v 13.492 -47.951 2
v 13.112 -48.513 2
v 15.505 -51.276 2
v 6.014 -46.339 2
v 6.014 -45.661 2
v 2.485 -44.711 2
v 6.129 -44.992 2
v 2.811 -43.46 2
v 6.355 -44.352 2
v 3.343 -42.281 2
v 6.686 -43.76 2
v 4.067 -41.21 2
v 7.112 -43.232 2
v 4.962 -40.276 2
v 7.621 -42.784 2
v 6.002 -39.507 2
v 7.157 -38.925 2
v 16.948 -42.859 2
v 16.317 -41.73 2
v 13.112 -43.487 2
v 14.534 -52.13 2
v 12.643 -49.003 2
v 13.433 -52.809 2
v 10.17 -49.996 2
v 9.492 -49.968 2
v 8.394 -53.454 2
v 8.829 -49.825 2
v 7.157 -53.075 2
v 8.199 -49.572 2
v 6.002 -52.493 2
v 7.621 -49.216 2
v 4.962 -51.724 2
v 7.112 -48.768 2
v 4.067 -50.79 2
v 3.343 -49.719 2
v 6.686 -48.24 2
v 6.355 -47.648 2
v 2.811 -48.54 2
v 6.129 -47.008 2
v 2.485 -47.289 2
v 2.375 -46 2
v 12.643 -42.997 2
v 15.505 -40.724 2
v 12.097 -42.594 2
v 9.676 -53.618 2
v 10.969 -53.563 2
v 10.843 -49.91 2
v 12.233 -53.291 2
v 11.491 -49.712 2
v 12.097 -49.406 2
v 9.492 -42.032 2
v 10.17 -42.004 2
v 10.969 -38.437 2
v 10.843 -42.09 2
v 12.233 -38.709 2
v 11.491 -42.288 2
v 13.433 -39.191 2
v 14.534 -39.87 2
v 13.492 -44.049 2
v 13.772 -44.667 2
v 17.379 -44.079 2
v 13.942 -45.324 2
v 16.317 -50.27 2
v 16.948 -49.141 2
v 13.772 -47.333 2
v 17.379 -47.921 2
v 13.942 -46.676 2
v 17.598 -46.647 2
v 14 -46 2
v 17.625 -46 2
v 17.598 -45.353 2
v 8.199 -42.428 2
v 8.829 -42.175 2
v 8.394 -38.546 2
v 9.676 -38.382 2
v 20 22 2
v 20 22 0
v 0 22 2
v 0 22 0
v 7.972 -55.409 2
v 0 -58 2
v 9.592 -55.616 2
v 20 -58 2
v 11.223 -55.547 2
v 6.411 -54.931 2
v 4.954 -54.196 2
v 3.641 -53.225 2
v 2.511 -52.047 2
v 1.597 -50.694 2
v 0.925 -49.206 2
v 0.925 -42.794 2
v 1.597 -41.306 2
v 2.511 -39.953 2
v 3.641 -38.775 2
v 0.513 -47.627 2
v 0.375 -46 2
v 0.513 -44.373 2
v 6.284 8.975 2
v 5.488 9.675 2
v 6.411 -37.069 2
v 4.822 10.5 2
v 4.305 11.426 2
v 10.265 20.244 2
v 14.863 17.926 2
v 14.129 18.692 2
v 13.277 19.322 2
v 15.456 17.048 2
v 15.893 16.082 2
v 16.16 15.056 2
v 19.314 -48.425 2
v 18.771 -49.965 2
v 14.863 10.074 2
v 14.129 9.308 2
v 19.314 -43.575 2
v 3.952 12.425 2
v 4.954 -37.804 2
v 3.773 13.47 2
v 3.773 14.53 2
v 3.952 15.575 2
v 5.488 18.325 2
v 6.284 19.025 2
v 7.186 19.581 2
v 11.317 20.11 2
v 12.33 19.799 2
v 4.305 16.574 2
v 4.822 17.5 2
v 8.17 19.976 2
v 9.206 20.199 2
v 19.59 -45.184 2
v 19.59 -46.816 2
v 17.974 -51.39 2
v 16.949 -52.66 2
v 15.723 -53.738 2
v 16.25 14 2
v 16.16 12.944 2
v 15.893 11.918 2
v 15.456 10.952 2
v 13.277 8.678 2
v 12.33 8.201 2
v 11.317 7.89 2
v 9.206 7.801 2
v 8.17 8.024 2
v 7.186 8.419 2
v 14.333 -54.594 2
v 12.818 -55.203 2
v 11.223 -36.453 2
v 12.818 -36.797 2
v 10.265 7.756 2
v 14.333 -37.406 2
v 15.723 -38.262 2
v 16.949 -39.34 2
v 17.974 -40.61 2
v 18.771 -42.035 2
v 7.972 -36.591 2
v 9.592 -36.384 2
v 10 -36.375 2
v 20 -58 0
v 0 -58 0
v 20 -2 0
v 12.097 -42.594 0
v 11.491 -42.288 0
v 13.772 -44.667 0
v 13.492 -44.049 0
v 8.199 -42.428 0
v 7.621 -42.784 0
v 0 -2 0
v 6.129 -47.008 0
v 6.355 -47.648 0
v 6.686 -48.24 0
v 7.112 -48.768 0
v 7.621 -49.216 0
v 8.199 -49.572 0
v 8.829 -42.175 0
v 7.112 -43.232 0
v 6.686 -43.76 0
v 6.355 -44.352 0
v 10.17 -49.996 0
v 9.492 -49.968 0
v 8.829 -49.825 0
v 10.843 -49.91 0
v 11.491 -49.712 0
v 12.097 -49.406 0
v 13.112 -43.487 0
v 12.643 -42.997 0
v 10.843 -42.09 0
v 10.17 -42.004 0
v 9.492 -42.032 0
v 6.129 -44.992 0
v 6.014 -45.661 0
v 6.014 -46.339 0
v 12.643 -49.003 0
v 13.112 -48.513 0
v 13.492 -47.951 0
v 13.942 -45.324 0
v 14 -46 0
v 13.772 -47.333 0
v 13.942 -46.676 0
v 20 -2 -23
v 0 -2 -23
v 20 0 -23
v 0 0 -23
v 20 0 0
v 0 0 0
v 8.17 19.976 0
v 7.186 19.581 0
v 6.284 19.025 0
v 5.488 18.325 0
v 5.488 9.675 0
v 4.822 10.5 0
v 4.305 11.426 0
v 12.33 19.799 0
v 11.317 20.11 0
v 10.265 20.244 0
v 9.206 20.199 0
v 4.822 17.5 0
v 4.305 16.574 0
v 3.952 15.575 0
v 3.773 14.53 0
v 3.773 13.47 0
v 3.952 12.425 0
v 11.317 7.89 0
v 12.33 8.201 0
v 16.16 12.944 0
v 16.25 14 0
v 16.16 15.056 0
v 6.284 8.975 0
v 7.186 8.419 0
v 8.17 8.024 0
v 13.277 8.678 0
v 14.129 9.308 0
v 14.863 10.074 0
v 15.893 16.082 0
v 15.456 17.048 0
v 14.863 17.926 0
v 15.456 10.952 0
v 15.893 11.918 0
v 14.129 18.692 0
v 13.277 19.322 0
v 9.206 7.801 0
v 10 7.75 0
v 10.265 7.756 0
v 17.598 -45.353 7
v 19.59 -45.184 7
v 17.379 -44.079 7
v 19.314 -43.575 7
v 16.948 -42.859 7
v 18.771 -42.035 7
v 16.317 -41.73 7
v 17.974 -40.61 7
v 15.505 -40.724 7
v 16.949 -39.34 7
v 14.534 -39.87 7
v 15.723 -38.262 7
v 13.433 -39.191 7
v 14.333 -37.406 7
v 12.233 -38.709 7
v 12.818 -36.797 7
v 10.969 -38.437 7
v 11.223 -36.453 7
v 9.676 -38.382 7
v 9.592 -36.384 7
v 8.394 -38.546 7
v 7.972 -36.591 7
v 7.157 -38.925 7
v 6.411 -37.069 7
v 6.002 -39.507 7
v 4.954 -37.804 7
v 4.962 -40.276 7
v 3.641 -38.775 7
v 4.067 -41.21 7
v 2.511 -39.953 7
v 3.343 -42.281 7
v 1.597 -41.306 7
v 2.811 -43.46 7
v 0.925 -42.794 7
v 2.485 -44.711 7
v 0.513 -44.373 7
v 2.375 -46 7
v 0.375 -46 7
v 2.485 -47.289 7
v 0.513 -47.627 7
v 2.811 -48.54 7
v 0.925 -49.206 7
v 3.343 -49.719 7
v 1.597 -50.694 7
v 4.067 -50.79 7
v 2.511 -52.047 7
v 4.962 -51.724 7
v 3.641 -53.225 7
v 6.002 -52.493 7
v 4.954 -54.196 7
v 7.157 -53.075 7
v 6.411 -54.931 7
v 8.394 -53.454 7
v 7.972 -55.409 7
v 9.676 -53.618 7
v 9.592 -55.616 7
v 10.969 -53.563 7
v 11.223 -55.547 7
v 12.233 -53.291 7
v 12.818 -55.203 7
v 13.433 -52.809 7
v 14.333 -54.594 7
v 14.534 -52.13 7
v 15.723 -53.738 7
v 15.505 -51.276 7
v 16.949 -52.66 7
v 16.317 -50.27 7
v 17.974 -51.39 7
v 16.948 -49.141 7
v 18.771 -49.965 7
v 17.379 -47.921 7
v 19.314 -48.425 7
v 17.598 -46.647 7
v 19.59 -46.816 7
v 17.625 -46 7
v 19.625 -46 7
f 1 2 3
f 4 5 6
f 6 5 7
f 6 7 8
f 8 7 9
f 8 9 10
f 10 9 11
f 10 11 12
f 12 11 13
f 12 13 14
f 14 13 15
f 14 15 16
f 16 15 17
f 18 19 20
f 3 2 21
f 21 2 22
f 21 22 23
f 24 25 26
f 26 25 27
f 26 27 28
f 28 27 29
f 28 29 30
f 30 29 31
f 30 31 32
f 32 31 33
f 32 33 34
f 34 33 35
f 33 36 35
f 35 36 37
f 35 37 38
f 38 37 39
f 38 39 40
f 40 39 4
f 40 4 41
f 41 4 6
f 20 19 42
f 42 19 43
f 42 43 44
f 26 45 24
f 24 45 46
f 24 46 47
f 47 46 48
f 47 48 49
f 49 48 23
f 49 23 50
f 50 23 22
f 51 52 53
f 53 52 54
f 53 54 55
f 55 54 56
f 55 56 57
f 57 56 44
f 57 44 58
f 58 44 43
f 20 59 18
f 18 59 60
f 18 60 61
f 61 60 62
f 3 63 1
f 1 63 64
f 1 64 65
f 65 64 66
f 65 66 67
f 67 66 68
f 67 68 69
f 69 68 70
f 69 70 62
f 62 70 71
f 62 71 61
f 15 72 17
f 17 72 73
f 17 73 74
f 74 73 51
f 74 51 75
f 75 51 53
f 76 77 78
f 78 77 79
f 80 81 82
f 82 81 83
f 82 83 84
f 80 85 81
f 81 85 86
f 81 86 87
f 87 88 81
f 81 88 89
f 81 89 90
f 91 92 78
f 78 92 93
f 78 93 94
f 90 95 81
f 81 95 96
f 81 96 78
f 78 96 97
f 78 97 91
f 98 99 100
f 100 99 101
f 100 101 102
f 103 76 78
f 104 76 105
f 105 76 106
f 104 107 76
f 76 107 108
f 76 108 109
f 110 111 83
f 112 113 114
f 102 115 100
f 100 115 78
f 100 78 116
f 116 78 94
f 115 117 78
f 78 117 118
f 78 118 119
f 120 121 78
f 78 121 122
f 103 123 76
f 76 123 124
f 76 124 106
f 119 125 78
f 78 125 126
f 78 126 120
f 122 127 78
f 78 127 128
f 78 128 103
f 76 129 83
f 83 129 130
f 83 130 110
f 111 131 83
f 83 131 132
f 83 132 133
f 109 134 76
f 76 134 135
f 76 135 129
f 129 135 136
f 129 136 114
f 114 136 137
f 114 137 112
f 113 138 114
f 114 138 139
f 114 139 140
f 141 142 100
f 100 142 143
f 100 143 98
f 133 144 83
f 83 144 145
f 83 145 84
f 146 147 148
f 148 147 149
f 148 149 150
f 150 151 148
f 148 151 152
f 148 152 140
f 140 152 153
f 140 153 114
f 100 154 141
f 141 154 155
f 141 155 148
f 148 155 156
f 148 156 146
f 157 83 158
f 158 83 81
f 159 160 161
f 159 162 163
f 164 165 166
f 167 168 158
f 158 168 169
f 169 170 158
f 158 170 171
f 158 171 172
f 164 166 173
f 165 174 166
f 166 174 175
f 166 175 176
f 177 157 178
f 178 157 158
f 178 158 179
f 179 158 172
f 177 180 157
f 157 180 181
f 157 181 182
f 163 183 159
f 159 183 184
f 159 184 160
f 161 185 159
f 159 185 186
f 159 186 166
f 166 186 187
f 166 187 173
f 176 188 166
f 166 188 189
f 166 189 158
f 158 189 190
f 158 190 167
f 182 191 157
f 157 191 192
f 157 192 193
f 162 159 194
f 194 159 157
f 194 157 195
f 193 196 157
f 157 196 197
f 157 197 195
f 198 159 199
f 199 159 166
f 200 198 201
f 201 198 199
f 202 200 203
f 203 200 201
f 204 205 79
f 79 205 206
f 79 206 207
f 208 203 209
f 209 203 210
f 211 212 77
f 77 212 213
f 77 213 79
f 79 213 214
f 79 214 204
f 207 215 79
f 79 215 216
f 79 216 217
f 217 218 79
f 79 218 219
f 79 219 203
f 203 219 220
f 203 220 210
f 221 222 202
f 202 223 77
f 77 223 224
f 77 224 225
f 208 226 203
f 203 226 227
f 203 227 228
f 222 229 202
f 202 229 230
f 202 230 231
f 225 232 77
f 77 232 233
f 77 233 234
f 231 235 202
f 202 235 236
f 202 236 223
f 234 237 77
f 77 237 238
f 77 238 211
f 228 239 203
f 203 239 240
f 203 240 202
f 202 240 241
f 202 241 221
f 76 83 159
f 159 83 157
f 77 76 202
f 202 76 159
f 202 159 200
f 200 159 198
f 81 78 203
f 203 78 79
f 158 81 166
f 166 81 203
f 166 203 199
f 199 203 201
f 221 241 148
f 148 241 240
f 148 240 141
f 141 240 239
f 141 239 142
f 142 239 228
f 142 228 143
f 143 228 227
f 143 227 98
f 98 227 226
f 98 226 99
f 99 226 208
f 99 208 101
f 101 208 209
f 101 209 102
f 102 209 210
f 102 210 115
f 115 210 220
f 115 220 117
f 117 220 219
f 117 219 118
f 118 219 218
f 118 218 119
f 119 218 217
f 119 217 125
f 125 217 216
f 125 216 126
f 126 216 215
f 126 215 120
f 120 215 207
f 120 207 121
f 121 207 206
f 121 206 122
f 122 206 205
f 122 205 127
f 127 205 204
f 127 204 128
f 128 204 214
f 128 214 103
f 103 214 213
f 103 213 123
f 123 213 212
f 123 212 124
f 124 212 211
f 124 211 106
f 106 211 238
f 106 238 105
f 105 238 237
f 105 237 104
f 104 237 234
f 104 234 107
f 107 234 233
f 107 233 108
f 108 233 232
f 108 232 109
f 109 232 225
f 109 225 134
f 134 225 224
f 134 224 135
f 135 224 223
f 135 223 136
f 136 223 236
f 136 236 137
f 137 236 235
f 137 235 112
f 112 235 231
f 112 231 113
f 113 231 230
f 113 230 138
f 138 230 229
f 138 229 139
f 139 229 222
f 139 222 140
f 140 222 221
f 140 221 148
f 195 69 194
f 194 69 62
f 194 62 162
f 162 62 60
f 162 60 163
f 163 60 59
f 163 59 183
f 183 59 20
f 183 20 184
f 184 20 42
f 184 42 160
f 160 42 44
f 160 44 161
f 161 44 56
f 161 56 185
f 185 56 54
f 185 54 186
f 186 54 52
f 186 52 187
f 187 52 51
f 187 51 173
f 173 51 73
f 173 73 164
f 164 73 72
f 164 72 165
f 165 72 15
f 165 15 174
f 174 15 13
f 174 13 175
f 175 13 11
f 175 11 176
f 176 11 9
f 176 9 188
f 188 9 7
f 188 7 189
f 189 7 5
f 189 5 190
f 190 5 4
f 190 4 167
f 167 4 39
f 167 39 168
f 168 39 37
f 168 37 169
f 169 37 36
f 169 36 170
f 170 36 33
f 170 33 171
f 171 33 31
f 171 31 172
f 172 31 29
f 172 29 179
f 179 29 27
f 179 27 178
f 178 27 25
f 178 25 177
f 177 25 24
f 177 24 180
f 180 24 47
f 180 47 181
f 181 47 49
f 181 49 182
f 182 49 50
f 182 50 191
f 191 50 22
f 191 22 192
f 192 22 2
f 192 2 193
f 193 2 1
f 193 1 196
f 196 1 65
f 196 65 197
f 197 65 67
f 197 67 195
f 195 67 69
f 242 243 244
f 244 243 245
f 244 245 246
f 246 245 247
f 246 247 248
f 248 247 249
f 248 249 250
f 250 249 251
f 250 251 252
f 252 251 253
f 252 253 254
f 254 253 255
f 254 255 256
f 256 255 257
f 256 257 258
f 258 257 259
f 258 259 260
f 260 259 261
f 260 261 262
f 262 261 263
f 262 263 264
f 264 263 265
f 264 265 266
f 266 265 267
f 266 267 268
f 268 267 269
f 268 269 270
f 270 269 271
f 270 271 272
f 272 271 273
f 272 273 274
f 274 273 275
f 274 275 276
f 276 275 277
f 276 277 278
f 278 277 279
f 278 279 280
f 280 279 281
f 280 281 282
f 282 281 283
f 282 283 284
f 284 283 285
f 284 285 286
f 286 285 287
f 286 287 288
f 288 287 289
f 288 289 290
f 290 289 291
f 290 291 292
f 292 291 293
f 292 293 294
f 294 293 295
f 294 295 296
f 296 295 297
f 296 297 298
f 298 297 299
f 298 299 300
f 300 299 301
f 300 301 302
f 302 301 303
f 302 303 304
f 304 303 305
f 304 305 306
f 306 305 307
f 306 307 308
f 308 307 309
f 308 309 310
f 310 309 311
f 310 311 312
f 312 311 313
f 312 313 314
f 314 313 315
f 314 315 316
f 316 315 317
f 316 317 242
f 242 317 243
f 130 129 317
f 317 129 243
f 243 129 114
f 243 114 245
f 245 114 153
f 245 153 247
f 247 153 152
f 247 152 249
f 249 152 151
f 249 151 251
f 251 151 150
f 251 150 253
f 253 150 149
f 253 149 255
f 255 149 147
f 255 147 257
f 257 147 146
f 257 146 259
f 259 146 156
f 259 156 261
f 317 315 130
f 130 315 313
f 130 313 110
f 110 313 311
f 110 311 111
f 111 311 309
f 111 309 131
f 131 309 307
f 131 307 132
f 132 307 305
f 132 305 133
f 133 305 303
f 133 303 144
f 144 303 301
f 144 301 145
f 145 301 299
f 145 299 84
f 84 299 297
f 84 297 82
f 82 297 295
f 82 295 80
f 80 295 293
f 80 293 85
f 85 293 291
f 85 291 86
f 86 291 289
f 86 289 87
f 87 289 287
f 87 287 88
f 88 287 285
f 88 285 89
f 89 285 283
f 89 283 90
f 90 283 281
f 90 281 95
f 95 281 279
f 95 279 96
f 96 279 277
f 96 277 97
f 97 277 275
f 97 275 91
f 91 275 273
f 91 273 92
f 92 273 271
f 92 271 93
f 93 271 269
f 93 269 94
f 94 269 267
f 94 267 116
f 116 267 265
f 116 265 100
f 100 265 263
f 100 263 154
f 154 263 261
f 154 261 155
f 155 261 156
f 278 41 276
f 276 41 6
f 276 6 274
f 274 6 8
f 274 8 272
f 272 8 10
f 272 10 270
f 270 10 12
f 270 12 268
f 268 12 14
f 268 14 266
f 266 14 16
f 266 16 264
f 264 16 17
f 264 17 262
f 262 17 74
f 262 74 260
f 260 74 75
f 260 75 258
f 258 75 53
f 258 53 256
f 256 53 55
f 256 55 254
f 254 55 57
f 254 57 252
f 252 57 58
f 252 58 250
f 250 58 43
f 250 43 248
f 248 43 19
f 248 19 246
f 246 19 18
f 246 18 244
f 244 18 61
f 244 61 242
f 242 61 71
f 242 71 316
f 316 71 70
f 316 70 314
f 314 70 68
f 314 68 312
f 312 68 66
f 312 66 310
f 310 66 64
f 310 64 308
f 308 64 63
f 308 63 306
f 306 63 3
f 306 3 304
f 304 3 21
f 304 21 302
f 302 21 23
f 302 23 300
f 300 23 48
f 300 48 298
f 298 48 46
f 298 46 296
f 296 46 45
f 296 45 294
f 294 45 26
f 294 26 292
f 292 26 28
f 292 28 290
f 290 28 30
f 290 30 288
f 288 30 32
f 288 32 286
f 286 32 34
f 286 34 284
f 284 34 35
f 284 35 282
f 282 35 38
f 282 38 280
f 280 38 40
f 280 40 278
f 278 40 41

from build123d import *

# Parameters (mm, degrees)
BOSS_EXTRUDE1_DEPTH = 20
SKETCH2_R           = 6.25
SKETCH2_R_2         = 4
CUT_EXTRUDE1_DEPTH  = 15
SKETCH3_R           = 9.625
SKETCH3_R_2         = 7.625
BOSS_EXTRUDE2_DEPTH = 5


with BuildPart() as part:
    # Sketch1 → Boss-Extrude1 (new body)
    with BuildSketch(Plane(origin=(0, 0, 0), x_dir=(0, 0, -1), z_dir=(1, 0, 0))):
        Polygon((0, 22), (0, 0), (23, 0), (23, -2), (0, -2), (0, -58), (-2, -58), (-2, 22), align=None)
    extrude(amount=BOSS_EXTRUDE1_DEPTH)

    # Sketch2 → Cut-Extrude1 (cut)
    with BuildSketch(Plane.XY.offset(2)):
        with Locations((10, 14)):
            Circle(SKETCH2_R)
        with Locations((10, -46)):
            Circle(SKETCH2_R_2)
    extrude(amount=-CUT_EXTRUDE1_DEPTH, mode=Mode.SUBTRACT)

    # Sketch3 → Boss-Extrude2 (add)
    with BuildSketch(Plane.XY.offset(2)):
        with Locations(Location((10, -46, 0), (0, 0, 90))):
            Circle(SKETCH3_R)
        with Locations((10, -46)):
            Circle(SKETCH3_R_2, mode=Mode.SUBTRACT)
    extrude(amount=BOSS_EXTRUDE2_DEPTH)


solid = part.part
